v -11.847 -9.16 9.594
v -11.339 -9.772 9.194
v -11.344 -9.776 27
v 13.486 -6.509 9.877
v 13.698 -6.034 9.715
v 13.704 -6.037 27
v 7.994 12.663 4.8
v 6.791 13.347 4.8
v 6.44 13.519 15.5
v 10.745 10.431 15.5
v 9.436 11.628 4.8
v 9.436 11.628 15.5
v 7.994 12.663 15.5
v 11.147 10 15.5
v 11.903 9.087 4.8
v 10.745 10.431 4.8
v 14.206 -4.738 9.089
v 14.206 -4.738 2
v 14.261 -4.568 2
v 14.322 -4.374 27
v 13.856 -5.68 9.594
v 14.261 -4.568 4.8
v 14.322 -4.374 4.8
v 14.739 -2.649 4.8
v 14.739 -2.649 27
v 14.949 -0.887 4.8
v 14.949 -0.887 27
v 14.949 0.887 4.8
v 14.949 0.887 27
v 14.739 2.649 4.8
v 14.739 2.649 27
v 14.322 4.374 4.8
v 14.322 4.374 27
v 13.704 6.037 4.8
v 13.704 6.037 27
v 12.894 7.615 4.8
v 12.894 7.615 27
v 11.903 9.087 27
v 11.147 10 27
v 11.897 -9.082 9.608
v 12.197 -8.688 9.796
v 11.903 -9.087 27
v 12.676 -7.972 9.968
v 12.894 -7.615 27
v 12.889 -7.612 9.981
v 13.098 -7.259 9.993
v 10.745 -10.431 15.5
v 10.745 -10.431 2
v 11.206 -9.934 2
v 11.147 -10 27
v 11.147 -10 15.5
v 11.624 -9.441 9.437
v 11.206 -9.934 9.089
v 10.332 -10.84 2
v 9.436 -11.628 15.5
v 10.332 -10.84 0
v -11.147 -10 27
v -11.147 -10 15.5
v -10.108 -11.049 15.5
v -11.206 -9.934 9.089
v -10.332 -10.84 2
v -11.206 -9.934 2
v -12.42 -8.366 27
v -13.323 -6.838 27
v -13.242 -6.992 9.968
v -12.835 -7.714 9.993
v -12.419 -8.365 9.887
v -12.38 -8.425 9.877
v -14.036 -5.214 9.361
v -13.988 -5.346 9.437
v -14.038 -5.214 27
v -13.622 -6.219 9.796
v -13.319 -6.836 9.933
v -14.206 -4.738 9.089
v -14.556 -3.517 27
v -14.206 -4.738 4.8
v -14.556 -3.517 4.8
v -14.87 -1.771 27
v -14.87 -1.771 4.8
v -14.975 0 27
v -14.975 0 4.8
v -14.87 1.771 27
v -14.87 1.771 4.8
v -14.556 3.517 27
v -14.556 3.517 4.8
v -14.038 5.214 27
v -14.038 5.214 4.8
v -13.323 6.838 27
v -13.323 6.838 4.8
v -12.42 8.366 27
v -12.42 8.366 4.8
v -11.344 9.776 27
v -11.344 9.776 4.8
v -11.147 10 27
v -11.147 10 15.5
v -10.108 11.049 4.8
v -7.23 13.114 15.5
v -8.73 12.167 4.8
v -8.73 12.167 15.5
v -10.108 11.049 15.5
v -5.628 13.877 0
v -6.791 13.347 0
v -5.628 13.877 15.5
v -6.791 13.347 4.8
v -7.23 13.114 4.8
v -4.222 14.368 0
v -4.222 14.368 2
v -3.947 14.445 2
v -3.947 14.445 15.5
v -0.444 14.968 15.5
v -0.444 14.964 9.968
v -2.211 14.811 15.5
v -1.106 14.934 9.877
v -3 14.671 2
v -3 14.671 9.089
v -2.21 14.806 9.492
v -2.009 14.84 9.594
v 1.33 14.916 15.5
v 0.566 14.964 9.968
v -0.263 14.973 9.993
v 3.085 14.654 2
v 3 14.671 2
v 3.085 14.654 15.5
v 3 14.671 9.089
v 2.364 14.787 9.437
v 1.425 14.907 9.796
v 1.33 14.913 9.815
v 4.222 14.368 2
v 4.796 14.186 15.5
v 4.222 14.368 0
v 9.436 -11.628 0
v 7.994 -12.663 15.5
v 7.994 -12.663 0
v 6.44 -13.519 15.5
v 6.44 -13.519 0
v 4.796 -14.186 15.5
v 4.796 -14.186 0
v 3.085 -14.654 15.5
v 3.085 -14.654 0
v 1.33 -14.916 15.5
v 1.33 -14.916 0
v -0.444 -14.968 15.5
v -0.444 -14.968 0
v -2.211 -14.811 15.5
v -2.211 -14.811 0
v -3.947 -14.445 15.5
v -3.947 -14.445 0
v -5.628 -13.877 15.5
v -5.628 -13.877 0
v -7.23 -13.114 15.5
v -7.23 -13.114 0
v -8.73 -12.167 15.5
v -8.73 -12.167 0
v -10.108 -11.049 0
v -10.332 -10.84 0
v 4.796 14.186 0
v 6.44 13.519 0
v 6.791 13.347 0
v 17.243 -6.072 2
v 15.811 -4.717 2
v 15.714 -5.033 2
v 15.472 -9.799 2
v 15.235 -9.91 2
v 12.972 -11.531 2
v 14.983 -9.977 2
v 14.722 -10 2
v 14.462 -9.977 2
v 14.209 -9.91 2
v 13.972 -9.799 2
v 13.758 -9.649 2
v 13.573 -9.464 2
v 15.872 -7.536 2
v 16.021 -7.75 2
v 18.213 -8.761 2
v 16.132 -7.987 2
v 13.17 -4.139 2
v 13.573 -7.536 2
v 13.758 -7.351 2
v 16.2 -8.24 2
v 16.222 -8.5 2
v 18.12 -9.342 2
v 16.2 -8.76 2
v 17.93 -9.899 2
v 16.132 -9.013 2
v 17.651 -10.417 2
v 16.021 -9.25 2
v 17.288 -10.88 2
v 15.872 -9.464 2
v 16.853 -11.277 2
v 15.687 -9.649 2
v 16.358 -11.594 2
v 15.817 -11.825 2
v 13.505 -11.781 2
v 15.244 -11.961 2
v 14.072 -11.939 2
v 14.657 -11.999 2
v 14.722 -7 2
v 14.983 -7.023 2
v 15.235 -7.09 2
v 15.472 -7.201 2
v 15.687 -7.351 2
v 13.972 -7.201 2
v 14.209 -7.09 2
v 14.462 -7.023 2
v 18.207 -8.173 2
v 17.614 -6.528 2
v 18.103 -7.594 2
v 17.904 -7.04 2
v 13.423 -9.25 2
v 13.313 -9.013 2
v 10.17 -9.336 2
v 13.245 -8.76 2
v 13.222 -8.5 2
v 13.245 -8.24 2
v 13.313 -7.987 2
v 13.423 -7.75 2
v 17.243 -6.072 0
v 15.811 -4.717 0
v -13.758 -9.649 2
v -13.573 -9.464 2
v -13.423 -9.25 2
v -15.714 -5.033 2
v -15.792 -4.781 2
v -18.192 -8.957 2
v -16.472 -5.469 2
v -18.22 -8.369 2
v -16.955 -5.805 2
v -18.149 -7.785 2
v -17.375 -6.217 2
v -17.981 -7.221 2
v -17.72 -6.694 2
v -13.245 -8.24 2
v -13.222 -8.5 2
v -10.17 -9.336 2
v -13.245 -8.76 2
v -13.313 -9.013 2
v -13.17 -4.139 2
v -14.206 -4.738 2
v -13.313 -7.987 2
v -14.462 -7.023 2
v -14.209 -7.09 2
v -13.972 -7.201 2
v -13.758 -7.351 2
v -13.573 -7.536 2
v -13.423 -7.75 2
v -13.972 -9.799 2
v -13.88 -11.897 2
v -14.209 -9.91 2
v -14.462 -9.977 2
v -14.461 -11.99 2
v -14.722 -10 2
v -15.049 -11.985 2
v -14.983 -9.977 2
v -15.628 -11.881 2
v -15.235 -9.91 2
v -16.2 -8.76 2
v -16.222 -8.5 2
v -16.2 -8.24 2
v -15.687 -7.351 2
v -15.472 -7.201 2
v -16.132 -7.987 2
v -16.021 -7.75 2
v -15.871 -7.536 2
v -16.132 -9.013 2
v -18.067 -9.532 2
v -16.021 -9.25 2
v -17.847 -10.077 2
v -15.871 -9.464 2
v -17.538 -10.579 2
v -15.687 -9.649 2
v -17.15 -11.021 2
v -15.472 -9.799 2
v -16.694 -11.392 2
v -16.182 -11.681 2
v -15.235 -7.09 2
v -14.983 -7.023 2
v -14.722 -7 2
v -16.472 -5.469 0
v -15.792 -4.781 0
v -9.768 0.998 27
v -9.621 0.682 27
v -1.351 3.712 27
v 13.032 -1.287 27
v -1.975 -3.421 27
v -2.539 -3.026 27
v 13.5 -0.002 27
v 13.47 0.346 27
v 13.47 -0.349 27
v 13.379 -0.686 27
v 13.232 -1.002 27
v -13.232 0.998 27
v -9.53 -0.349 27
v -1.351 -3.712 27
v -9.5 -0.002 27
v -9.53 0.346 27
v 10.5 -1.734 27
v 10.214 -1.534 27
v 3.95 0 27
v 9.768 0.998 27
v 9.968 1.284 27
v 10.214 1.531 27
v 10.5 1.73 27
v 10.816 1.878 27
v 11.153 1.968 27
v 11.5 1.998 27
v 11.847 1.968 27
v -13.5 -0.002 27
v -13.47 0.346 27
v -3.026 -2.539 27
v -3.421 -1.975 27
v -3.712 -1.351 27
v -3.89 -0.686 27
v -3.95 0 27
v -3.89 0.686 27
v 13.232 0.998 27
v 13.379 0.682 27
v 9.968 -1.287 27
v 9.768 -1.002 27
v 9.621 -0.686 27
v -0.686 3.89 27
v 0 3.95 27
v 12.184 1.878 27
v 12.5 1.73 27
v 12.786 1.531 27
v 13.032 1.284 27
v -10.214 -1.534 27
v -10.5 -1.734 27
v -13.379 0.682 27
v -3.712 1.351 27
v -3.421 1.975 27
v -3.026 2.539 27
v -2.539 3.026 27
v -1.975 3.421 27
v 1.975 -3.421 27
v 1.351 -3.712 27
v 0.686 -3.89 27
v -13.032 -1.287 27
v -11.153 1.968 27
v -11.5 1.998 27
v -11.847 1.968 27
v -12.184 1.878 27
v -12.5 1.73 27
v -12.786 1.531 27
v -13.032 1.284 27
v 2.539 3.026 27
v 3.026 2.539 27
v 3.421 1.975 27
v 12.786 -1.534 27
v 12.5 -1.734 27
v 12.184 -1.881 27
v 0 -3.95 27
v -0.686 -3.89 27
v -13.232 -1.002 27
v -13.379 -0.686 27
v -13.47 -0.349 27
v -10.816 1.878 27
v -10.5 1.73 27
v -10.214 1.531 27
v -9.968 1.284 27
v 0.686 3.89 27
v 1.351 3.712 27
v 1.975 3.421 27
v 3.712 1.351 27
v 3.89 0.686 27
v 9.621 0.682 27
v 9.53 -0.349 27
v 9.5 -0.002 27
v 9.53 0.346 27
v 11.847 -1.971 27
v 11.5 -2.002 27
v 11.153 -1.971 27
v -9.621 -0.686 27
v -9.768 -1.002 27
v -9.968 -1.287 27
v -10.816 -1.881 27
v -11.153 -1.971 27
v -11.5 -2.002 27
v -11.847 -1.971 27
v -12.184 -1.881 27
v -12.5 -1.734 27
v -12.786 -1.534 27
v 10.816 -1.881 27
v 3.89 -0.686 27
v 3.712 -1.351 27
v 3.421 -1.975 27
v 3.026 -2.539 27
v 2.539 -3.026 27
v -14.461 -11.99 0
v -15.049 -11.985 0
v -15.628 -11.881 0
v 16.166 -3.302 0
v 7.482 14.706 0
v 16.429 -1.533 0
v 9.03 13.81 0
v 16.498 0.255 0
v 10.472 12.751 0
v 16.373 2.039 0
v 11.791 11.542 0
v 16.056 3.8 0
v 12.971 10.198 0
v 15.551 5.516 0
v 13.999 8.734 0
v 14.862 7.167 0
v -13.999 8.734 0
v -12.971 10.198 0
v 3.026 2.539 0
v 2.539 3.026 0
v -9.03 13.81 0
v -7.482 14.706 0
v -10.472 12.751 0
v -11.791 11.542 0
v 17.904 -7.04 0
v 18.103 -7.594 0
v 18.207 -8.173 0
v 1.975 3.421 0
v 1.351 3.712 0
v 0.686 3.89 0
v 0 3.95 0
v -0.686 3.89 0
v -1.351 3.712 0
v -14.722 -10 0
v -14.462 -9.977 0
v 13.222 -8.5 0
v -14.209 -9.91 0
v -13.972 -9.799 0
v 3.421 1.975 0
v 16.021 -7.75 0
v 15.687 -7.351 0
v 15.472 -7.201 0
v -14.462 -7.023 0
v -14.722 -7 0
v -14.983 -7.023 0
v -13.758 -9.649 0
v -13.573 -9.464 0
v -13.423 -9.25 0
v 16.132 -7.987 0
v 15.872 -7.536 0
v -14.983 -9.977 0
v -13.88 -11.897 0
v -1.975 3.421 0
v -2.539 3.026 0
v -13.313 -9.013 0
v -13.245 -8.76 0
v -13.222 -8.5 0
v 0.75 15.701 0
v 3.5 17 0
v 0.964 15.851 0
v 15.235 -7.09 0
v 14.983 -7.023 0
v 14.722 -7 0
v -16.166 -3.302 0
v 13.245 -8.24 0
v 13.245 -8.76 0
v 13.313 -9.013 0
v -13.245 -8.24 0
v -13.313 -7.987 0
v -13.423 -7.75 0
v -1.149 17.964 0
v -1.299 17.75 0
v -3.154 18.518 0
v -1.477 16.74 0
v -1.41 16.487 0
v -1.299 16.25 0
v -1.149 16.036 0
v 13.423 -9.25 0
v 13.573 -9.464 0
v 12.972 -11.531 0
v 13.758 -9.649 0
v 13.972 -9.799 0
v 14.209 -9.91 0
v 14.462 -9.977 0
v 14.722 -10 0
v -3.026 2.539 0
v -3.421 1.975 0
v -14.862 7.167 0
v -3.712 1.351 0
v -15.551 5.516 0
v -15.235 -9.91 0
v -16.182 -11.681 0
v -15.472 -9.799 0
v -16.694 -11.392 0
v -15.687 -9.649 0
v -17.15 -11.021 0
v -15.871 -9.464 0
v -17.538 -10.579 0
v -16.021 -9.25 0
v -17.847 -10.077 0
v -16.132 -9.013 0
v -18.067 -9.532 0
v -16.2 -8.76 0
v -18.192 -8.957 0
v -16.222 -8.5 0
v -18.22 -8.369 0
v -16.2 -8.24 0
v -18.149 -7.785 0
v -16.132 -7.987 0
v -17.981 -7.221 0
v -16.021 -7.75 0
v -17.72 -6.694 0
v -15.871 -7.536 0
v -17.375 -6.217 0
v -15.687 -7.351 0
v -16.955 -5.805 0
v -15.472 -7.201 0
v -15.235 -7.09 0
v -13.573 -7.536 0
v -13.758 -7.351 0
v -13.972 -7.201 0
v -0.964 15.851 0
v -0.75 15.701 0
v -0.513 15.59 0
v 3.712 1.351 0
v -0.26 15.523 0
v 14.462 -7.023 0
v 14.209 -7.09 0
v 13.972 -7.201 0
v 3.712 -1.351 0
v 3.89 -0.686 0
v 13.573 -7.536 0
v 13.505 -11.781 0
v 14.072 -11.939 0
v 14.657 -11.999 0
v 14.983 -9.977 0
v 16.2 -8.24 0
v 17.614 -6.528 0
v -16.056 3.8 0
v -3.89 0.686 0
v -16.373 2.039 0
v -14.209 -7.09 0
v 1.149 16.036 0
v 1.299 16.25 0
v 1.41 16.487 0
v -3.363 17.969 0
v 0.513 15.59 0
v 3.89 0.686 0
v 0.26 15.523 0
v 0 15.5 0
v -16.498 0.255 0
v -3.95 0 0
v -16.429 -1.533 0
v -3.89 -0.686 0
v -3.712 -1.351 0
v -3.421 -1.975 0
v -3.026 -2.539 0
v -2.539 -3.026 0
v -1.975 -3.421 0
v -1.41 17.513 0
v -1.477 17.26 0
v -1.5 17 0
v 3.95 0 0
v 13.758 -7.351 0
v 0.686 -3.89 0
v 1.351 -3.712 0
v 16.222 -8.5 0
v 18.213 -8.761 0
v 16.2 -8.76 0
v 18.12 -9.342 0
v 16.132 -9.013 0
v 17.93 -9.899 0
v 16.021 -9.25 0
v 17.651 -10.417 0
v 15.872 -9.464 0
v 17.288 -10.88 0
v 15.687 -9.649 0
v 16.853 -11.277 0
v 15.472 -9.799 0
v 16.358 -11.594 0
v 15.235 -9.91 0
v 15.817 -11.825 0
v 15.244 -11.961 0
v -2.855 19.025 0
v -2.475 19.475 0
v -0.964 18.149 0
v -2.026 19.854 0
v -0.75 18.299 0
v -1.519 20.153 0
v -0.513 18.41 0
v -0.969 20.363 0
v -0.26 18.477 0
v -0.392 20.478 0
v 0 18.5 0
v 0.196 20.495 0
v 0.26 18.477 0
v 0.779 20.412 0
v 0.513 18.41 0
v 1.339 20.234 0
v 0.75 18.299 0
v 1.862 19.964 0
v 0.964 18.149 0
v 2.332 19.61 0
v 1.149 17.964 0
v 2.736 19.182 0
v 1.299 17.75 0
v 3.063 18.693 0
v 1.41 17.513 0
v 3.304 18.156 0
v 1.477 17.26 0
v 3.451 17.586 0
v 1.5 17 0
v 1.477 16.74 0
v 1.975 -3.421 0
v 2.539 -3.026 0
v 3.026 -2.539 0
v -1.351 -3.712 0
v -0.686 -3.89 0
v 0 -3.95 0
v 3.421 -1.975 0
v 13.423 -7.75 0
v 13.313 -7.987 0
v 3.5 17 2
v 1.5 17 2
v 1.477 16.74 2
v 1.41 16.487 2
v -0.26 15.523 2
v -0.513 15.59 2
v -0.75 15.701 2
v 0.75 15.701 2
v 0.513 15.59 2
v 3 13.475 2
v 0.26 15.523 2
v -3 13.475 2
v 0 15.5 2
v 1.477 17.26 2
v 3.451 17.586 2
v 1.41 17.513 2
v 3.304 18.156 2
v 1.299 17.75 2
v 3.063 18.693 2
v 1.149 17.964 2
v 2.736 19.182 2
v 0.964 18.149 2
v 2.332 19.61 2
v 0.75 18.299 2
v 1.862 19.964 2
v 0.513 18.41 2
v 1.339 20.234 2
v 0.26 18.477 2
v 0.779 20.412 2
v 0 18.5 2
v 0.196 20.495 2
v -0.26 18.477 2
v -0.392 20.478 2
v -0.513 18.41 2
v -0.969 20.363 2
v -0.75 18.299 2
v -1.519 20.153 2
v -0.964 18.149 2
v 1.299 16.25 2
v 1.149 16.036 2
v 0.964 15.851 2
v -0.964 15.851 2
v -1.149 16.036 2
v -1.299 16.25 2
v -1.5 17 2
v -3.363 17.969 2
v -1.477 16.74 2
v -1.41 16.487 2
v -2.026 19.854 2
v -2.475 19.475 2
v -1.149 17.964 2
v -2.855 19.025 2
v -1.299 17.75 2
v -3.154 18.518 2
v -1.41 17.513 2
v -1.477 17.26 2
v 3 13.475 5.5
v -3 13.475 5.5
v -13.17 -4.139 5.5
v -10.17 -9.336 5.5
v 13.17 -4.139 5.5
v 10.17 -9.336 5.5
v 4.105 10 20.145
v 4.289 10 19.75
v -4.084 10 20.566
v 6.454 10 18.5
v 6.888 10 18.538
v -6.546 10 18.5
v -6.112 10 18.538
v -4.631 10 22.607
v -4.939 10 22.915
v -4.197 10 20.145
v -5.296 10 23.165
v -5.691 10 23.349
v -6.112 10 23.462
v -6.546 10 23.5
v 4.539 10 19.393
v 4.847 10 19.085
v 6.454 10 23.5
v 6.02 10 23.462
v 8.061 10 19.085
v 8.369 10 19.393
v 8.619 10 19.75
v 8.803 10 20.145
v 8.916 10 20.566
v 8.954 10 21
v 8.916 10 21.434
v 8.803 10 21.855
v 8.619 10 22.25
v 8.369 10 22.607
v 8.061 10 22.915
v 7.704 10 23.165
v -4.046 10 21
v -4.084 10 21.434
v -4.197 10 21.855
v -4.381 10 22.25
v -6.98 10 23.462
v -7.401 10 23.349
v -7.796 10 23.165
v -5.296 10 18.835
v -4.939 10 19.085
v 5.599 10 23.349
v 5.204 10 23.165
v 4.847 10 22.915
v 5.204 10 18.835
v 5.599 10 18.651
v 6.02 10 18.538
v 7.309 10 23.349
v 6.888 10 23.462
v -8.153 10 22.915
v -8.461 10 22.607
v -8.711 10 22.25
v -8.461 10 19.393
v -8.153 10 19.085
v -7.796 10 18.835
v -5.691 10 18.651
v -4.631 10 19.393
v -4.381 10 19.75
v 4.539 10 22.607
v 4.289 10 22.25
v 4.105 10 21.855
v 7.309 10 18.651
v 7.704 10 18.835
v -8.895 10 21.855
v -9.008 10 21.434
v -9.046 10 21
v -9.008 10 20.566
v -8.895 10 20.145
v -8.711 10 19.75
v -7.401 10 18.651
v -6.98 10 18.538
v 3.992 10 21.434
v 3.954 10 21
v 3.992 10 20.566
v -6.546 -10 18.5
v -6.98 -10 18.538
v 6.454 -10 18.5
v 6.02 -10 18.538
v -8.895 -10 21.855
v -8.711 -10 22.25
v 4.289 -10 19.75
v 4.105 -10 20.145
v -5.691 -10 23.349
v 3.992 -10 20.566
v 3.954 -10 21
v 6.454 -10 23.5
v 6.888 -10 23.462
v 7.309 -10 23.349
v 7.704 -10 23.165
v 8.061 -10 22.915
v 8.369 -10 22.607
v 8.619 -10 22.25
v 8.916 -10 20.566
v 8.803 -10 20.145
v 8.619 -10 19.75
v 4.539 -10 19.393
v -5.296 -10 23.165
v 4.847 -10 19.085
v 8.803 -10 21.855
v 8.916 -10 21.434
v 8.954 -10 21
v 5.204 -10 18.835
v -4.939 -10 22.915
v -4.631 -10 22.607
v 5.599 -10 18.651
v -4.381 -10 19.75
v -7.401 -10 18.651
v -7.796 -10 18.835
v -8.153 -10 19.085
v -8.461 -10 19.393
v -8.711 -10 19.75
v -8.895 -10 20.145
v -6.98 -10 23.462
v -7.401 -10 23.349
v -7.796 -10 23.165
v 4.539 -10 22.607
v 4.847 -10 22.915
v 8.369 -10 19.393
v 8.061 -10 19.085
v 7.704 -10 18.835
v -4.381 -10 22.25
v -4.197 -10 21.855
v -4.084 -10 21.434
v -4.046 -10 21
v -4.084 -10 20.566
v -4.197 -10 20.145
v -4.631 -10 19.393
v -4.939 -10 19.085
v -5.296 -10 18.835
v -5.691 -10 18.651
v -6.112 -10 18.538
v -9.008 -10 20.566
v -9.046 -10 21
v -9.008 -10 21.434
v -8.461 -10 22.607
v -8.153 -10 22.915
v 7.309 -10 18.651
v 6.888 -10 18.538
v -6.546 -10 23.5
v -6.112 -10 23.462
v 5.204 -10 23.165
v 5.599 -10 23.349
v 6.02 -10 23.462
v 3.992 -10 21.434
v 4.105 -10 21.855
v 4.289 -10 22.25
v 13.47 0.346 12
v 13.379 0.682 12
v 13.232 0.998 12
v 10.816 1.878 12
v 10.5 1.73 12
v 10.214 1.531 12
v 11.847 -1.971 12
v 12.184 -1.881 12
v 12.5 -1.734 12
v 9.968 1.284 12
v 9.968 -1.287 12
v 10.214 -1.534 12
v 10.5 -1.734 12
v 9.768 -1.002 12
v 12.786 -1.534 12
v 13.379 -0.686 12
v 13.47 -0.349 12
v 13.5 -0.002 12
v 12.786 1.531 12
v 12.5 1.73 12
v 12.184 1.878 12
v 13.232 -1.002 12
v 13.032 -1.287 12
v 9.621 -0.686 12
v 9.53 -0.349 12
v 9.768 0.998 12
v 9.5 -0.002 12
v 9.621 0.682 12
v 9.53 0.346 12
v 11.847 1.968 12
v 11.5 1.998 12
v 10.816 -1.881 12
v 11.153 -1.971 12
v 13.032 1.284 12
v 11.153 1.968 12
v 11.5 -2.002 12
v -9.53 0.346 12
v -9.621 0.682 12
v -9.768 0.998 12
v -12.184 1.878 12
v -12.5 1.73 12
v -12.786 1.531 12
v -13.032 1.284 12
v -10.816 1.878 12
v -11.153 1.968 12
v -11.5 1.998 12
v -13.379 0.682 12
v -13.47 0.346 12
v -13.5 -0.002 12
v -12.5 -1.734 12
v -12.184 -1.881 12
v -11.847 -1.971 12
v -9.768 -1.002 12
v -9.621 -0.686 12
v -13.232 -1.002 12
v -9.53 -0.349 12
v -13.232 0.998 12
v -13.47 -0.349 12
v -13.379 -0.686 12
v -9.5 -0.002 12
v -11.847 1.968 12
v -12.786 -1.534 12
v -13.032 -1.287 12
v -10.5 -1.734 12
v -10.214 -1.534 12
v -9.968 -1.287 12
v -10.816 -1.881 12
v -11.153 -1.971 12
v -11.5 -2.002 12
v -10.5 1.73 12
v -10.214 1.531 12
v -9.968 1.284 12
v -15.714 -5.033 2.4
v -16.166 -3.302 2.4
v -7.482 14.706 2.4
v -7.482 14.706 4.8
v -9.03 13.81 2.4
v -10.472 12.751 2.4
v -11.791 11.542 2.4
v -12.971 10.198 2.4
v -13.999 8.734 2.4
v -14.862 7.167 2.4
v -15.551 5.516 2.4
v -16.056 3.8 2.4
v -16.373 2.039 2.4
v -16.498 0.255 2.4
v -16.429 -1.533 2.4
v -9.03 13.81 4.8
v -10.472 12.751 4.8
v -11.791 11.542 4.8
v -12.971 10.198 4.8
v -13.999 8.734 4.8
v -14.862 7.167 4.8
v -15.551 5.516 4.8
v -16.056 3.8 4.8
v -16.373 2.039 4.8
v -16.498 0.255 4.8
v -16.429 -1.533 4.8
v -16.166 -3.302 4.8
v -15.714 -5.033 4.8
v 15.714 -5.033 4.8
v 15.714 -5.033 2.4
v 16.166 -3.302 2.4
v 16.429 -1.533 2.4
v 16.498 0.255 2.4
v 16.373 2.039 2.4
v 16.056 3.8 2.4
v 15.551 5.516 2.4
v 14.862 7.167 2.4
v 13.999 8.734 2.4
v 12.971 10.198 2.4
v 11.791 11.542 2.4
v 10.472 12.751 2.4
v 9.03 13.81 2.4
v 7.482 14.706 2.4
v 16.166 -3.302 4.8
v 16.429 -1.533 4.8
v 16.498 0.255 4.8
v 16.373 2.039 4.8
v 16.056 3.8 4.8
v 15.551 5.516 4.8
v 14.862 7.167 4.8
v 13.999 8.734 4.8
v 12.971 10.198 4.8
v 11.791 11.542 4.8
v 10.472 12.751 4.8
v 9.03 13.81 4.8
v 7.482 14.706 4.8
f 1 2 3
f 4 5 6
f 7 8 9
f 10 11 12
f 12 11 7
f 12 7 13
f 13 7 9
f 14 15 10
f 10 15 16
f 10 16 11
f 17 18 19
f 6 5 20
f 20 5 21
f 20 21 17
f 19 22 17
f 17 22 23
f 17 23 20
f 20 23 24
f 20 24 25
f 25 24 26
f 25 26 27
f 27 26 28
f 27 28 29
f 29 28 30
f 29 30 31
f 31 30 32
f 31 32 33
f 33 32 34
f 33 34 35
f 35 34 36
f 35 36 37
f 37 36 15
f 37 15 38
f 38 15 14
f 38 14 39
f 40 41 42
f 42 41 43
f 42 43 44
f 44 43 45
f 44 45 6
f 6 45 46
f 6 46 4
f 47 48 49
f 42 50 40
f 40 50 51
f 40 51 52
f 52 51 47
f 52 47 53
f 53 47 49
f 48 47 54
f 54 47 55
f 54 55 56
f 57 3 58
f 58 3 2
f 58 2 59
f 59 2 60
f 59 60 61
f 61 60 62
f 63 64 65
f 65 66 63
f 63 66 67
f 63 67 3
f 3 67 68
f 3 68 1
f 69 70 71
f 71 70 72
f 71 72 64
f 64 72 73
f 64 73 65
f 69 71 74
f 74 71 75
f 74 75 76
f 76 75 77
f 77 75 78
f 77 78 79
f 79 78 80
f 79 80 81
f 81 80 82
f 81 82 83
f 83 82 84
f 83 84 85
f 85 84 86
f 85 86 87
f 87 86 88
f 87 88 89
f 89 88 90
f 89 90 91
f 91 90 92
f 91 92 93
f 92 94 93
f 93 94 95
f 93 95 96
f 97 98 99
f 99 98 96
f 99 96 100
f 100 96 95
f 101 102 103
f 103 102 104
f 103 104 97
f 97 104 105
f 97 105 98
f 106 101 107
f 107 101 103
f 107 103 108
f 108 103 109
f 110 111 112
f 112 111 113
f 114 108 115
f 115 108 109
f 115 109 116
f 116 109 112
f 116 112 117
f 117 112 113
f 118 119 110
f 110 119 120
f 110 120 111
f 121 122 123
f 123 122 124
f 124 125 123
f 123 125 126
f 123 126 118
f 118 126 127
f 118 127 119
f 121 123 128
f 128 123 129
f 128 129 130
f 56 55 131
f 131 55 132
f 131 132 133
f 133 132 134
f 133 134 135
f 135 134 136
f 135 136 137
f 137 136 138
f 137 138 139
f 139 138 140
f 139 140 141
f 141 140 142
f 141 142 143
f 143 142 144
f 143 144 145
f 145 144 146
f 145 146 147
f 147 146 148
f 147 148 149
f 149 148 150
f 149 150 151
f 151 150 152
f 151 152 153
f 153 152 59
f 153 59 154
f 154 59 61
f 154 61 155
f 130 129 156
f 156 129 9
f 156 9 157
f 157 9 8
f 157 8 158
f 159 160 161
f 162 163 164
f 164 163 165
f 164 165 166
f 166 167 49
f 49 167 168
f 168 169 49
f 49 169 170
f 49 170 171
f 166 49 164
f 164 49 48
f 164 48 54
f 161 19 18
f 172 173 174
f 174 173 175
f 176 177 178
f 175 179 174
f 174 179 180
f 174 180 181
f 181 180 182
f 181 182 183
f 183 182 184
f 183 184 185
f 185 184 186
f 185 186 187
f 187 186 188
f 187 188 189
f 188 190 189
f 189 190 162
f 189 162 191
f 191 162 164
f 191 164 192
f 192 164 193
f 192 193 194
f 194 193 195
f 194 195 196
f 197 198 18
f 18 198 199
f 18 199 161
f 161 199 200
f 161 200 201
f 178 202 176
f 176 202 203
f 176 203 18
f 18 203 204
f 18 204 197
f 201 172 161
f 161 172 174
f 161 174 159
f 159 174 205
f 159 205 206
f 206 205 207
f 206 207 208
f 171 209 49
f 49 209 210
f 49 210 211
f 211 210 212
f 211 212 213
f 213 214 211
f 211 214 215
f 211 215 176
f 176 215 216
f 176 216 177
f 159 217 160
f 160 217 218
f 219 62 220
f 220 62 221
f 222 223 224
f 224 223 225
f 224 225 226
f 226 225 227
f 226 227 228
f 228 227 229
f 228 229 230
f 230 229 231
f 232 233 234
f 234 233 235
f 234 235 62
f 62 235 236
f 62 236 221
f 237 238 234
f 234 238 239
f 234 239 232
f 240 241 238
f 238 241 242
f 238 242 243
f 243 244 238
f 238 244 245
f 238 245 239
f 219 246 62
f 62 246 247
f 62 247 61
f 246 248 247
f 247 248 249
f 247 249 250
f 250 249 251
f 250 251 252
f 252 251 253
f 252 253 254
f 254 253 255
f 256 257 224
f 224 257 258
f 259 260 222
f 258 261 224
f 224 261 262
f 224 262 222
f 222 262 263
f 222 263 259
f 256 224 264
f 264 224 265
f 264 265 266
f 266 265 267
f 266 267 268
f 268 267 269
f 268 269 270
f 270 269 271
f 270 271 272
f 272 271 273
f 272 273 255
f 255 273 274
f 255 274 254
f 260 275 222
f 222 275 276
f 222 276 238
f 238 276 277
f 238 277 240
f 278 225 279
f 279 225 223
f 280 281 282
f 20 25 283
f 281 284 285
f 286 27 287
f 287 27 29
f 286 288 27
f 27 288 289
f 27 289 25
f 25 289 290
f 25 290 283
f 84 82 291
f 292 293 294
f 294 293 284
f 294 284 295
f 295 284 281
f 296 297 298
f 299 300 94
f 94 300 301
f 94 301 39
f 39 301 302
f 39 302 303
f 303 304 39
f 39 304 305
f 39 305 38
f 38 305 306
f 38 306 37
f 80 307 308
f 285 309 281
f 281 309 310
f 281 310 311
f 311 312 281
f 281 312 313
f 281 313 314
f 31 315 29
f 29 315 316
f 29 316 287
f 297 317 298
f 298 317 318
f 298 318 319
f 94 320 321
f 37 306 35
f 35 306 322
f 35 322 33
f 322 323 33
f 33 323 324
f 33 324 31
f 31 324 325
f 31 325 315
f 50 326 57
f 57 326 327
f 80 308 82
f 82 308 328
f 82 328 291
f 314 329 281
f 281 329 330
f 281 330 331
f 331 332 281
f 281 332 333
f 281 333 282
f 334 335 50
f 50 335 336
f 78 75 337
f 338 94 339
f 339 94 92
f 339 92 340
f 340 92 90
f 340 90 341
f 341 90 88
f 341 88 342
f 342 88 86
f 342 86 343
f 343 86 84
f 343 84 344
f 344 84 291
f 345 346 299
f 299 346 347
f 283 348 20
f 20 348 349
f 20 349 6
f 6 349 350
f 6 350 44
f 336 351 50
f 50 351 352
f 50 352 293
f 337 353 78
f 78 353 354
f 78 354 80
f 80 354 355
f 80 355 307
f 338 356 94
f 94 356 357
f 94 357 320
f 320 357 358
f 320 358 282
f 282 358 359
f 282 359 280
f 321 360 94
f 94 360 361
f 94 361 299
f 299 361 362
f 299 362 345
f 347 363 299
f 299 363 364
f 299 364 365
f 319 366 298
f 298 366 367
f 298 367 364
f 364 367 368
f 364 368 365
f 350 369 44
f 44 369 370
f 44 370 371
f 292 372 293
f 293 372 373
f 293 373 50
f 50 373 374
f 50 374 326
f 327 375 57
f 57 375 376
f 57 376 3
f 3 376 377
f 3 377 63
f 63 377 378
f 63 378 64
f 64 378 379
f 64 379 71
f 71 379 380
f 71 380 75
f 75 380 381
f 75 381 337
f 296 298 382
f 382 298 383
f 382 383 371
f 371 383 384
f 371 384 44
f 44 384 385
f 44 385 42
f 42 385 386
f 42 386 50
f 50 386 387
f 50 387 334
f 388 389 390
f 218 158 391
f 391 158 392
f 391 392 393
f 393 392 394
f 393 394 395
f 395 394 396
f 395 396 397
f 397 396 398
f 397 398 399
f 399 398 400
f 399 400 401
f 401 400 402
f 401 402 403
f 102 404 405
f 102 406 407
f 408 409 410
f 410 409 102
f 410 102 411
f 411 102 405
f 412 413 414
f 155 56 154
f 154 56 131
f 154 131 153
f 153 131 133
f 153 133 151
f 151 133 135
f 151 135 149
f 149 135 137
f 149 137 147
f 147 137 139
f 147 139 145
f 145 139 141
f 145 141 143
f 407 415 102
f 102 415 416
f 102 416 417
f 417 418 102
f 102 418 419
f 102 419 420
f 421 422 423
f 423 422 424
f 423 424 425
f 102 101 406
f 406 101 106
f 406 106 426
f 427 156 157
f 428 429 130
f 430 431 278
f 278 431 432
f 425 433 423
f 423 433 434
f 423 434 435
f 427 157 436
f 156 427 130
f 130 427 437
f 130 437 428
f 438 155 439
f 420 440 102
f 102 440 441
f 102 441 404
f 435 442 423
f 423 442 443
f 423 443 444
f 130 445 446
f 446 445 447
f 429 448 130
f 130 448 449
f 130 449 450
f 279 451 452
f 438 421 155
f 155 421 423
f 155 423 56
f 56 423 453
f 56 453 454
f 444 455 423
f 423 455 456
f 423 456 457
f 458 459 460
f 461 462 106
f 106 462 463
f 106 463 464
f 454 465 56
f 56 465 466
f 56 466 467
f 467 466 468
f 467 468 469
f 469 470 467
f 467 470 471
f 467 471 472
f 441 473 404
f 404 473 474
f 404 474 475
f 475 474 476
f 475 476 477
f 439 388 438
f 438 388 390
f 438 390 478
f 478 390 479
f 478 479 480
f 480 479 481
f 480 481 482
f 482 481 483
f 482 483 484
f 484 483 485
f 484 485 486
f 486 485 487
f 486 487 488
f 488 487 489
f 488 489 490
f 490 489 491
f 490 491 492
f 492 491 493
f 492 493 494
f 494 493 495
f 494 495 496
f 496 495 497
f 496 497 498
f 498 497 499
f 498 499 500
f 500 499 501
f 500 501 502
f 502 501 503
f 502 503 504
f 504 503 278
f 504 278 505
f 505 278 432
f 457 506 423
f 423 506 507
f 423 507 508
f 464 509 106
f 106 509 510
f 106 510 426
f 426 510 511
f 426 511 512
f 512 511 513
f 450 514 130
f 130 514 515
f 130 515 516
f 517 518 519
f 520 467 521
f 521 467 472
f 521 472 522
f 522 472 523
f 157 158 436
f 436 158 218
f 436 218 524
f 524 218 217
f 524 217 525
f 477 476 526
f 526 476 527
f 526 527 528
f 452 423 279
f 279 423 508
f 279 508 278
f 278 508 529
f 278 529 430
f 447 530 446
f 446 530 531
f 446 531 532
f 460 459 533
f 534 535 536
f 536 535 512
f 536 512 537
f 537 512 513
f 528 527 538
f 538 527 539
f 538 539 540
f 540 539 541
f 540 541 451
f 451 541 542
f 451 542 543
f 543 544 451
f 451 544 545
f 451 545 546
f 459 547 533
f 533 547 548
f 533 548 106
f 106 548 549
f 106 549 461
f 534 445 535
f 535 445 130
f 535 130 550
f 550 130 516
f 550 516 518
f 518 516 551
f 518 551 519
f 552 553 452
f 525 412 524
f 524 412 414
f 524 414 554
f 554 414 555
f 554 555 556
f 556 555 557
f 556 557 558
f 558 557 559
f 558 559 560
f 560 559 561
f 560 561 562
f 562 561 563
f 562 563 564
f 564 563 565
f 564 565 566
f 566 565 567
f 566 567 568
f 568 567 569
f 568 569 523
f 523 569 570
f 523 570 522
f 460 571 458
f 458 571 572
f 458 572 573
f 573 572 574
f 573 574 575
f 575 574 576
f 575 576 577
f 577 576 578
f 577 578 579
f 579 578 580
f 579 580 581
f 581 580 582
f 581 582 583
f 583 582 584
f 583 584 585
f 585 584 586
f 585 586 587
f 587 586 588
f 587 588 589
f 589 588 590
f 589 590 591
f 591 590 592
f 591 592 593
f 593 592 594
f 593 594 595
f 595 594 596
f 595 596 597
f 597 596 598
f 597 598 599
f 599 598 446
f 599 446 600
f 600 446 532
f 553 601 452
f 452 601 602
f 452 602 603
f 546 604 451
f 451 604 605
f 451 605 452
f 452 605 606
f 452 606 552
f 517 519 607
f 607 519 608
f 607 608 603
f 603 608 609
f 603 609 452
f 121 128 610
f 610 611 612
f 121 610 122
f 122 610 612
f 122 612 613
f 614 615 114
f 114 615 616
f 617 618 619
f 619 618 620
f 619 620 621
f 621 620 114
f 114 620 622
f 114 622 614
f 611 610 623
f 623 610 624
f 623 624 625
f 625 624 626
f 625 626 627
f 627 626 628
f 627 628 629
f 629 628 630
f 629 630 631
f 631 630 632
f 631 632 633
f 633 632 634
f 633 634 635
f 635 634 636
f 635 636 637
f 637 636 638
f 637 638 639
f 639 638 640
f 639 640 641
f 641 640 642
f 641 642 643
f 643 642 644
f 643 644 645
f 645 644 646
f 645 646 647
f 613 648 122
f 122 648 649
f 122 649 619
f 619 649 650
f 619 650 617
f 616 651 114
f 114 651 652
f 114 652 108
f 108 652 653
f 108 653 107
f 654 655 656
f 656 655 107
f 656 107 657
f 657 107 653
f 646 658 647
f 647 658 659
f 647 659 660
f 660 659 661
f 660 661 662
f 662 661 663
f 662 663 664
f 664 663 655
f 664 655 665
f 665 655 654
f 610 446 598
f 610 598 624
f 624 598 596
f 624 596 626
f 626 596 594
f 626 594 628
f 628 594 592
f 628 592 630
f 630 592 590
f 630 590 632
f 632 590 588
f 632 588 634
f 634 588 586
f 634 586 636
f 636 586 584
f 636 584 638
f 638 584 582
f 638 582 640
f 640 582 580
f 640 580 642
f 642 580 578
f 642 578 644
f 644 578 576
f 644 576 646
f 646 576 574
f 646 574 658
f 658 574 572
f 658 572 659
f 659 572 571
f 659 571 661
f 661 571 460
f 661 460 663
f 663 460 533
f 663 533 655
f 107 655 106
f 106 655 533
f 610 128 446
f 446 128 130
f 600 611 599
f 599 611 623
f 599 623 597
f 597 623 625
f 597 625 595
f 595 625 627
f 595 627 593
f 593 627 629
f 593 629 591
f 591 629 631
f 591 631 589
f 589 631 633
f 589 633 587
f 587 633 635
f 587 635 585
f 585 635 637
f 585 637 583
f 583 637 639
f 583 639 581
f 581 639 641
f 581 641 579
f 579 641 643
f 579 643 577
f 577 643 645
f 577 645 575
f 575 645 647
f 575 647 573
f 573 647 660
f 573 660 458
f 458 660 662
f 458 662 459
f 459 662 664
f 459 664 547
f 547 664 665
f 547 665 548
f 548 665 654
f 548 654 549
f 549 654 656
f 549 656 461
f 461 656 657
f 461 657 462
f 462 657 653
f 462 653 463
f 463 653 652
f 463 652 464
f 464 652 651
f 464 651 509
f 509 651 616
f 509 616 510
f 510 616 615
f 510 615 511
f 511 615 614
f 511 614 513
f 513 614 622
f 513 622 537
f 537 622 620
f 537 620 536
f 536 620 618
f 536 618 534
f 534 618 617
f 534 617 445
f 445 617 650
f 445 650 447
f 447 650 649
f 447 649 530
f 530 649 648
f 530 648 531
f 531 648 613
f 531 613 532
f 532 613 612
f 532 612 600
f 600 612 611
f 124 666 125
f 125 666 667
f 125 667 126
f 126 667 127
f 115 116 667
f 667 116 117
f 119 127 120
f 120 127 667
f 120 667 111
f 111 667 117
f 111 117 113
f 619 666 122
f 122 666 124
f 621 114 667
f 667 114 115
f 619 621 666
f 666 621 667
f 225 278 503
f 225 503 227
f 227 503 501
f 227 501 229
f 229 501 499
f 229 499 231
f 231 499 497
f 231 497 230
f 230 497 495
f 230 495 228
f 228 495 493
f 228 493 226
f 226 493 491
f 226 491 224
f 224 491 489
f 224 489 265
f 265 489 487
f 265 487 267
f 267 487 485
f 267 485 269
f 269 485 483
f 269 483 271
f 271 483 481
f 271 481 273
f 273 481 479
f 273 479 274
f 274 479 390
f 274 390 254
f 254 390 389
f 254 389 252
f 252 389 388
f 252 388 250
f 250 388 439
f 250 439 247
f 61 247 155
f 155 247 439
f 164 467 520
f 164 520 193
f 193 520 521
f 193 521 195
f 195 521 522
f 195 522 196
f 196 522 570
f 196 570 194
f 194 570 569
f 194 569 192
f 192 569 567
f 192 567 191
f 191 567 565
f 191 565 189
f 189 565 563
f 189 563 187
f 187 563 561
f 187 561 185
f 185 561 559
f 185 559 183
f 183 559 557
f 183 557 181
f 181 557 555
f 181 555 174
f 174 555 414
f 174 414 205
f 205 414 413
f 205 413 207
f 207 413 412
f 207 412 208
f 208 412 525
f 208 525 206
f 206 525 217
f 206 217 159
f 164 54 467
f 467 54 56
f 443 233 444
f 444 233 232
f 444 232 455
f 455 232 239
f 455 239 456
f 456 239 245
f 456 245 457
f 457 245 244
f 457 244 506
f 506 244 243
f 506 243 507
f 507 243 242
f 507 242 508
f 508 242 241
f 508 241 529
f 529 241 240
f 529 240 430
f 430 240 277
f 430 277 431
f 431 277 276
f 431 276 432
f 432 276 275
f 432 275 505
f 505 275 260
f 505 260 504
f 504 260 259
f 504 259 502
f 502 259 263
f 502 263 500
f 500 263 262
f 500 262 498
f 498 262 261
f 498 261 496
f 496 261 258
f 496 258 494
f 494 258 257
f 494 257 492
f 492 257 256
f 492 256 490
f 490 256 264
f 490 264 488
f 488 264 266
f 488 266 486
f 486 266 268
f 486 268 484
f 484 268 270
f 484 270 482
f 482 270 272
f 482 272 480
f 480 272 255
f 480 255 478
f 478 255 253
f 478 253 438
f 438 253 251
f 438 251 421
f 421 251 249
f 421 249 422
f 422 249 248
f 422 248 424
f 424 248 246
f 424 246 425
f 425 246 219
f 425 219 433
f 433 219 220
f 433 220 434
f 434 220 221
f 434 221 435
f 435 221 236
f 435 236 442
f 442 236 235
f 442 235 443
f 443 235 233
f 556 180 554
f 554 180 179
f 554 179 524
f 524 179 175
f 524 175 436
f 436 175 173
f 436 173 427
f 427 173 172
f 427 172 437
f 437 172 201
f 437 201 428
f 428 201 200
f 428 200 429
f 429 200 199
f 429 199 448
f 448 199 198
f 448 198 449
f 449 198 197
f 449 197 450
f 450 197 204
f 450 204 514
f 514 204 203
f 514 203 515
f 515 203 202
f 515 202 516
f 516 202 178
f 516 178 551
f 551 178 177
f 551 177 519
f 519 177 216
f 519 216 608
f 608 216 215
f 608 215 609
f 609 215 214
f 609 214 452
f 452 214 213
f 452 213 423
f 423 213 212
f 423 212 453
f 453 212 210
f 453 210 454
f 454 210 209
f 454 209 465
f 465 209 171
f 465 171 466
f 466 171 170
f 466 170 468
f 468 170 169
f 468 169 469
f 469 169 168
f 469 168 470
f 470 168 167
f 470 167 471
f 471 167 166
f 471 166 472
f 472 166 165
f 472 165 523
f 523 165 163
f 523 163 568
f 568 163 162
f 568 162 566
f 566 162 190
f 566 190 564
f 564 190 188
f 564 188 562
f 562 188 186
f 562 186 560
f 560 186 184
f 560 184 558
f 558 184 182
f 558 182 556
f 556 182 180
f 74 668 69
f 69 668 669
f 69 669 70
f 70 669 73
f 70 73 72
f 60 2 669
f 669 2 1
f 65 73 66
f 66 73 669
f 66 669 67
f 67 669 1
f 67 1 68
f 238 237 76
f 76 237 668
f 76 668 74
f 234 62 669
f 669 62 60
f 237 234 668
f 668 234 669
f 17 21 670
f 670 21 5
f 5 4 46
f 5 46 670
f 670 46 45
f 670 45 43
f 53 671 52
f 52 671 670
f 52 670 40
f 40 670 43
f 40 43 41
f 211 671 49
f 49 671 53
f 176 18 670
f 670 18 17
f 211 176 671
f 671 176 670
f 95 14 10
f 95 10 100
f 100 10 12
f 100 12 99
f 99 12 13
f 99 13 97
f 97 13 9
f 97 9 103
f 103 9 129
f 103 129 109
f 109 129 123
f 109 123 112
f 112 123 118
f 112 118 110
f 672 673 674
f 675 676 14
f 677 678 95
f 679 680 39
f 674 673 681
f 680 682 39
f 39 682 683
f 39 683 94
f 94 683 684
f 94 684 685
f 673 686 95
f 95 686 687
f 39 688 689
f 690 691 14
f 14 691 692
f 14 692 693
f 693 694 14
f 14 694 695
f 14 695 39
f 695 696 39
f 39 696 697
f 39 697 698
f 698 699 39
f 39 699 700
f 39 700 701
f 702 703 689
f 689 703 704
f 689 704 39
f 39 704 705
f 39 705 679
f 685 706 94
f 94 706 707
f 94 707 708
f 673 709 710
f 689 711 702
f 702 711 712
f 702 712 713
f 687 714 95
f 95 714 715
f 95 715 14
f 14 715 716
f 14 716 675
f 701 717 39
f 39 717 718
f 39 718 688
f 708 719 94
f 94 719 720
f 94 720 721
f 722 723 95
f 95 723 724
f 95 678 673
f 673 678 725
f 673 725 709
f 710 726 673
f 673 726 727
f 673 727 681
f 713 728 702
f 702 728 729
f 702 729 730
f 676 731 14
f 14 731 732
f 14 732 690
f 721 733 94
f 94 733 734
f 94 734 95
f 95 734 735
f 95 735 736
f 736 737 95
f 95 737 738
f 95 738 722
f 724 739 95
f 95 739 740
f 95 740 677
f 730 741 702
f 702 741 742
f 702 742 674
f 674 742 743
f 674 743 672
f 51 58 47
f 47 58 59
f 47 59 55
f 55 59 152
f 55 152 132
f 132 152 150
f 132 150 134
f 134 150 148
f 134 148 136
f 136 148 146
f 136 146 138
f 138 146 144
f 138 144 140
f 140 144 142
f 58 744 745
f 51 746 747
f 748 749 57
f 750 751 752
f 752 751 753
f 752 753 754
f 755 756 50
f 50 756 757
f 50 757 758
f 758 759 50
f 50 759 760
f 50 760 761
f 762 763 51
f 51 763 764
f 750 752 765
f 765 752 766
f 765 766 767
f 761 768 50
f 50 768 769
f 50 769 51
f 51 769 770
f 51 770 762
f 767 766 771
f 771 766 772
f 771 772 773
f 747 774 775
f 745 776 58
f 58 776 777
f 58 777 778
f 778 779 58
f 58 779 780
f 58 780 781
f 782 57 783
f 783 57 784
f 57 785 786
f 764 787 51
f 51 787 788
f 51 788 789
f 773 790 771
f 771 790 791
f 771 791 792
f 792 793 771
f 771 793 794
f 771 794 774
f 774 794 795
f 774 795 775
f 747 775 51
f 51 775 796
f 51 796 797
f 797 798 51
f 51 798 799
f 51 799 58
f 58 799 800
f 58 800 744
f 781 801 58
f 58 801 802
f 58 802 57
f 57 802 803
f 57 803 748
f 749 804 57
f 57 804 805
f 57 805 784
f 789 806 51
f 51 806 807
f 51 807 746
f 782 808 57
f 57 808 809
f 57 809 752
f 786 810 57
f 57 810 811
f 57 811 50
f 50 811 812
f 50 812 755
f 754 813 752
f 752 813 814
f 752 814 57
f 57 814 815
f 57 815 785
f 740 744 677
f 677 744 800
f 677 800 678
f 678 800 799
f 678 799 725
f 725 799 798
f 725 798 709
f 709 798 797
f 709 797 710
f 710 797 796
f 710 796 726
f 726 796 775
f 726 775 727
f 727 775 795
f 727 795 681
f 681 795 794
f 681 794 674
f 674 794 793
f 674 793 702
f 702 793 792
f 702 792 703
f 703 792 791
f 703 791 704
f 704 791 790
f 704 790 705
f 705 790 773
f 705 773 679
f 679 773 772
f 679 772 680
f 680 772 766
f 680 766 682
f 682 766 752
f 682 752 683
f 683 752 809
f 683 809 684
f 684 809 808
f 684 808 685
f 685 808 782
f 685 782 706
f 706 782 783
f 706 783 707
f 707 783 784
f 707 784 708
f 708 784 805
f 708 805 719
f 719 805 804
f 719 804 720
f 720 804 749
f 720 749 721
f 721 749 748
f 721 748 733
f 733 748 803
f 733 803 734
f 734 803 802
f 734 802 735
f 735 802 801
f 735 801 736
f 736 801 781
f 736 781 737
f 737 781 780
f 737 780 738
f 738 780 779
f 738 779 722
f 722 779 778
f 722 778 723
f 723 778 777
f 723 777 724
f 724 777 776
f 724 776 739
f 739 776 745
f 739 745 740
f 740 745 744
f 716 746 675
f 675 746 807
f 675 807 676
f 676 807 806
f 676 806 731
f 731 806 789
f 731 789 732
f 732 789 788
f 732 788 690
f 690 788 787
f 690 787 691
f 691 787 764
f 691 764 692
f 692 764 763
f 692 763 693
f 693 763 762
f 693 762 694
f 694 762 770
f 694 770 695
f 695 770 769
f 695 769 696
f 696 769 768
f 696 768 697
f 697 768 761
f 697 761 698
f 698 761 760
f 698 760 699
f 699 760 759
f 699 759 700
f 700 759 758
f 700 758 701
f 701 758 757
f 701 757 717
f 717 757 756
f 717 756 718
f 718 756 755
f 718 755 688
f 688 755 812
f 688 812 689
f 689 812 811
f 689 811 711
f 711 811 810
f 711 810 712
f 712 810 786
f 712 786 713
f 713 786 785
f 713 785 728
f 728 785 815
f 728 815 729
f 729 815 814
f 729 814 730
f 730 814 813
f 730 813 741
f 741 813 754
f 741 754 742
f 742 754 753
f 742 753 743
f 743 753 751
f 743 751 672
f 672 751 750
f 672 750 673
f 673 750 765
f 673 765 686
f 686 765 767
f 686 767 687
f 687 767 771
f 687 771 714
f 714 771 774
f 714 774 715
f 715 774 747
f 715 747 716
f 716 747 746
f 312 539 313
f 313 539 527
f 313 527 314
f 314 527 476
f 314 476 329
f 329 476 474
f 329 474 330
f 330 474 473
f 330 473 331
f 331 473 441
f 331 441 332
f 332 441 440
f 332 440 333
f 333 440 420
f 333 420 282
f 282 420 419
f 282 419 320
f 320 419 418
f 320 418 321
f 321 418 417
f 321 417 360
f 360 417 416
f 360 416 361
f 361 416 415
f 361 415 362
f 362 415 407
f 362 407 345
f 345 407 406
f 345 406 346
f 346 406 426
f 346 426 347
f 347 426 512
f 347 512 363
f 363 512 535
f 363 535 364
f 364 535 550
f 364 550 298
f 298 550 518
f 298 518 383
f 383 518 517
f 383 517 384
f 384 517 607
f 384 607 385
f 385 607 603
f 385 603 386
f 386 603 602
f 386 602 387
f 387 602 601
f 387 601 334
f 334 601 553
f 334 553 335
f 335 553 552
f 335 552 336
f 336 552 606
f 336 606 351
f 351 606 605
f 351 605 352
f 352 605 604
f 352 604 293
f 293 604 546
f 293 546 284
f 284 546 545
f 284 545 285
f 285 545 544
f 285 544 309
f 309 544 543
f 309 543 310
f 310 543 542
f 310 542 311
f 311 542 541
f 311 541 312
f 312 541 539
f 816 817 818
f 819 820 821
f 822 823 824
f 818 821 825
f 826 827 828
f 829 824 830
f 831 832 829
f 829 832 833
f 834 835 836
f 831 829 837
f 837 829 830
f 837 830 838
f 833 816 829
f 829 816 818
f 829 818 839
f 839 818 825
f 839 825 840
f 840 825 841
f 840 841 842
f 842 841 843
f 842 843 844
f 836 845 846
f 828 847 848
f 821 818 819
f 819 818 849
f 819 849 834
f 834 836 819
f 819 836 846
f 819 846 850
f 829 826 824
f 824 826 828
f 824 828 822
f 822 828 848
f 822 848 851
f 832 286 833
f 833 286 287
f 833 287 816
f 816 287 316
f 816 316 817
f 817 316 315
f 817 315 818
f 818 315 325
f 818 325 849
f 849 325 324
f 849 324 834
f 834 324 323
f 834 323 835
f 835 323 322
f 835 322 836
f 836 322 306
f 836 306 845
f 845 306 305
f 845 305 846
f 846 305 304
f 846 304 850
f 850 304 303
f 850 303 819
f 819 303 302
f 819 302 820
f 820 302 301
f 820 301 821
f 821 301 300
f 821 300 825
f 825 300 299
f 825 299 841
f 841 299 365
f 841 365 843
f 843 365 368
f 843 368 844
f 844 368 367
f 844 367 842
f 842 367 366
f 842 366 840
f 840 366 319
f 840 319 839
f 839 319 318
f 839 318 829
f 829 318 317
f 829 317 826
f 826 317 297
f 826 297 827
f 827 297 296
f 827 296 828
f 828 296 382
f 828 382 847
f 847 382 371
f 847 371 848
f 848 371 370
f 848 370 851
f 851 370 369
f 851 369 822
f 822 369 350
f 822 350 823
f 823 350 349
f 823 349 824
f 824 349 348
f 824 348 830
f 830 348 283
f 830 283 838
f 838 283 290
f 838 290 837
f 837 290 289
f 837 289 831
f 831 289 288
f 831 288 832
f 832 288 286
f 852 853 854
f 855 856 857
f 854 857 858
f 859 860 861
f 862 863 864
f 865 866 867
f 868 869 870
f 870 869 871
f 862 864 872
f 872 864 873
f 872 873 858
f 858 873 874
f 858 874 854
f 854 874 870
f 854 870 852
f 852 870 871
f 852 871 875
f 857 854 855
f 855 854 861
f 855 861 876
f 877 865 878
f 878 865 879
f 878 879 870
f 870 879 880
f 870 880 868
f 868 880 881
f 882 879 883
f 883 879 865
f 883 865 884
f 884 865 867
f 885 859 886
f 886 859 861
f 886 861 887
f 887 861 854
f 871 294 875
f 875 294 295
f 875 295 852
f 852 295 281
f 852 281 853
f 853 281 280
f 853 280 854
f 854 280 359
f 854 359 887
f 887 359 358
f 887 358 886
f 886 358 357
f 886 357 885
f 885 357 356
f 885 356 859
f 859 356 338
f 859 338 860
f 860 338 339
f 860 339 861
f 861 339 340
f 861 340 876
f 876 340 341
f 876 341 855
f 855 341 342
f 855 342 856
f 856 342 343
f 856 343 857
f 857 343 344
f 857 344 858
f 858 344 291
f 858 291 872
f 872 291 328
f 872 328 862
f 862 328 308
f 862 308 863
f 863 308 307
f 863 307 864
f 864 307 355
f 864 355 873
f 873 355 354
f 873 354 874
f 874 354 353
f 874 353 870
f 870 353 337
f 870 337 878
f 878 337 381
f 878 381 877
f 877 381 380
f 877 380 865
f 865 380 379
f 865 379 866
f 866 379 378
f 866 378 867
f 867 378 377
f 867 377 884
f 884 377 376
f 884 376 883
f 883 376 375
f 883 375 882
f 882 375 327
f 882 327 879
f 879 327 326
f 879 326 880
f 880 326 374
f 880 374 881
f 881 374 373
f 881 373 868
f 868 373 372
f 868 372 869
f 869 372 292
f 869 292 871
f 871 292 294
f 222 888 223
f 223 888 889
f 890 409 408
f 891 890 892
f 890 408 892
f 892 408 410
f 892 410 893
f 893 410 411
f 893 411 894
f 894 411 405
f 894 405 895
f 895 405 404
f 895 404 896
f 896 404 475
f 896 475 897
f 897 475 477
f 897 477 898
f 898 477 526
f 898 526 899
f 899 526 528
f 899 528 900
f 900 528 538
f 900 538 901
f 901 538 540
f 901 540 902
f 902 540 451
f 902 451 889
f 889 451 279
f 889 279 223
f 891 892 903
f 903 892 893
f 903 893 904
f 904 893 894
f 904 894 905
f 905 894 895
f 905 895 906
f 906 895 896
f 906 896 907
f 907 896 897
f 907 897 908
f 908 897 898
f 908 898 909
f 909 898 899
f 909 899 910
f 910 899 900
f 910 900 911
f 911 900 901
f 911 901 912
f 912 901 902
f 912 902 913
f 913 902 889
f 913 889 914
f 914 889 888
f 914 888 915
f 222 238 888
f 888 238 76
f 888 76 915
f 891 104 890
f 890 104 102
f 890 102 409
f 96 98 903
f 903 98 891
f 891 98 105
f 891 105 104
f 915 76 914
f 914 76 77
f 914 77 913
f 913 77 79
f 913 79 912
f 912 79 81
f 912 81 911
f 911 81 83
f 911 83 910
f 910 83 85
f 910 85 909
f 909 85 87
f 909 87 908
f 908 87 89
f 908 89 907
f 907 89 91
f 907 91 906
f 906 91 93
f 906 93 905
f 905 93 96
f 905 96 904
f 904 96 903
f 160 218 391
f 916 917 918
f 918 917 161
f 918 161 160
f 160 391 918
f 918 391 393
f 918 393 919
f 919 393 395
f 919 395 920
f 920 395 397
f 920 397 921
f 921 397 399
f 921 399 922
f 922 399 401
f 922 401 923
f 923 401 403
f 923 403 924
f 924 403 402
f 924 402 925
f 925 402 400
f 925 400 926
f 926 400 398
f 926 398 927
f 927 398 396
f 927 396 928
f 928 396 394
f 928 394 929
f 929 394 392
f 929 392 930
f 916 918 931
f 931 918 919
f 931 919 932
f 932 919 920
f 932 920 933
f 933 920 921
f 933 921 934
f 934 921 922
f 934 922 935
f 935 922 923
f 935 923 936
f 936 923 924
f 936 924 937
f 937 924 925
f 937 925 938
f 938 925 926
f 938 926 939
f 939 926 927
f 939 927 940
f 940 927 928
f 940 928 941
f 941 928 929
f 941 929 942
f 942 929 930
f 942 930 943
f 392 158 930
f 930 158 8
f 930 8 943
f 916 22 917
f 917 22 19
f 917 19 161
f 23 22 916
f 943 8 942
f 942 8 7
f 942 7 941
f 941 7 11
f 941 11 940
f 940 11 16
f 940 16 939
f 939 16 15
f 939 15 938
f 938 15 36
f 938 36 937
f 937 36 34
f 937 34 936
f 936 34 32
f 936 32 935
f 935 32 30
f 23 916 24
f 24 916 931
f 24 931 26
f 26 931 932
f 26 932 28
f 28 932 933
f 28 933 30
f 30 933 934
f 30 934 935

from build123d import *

# Parameters (mm, degrees)
SKETCH1_R                    = 14.975
EXTRUDE1_DEPTH               = 27
EXTRUDE2_DEPTH               = 2
SKETCH3_R                    = 1.5
EXTRUDE3_DEPTH               = 3
EXTRUDE6_DEPTH               = 3
CIRPATTERN1_COUNT            = 3
SKETCH5_W                    = 37.119401026
SKETCH5_H                    = 9.762697639
EXTRUDE7_DEPTH               = 11.5
SKETCH6_R                    = 2.5
EXTRUDE8_DEPTH               = 45.624063274
SKETCH7_R                    = 3.95
EXTRUDE9_DEPTH               = 39.487751598
F_4_0_4_DIAMETER_HOLE1_D     = 4
F_4_0_4_DIAMETER_HOLE1_DEPTH = 15
EXTRUDE10_DEPTH              = 4.8


with BuildPart() as part:
    # Sketch1 → Extrude1 (new body)
    with BuildSketch(Plane.XY):
        Circle(SKETCH1_R)
    extrude(amount=EXTRUDE1_DEPTH)

    # Sketch2 → Extrude2 (add)
    with BuildSketch(Plane.XY):
        with BuildLine():
            Line((-3.363320174, 17.968543962), (-4.221577642, 14.367634016))
            Line((-4.221577642, 14.367634016), (4.221577642, 14.367634016))
            Line((4.221577642, 14.367634016), (3.5, 17))
            ThreePointArc((3.5, 17), (0.489070236, 20.465661597), (-3.363320174, 17.968543962))
        make_face()
    extrude2 = extrude(amount=EXTRUDE2_DEPTH)

    # Sketch3 → Extrude3 (cut)
    with BuildSketch(Plane.XY.offset(2)):
        with Locations((0, 17)):
            Circle(SKETCH3_R)
    extrude3 = extrude(amount=-EXTRUDE3_DEPTH, mode=Mode.SUBTRACT)

    # Sketch4 → Extrude6 (cut, symmetric)
    with BuildSketch(Plane(origin=(0, 0, 0), x_dir=(0, 0, -1), z_dir=(1, 0, 0))):
        Polygon((-2, 14.975), (-2, 13.475), (-5.5, 13.475), (-10, 14.975), align=None)
    extrude6 = extrude(amount=EXTRUDE6_DEPTH, both=True, mode=Mode.SUBTRACT)

    # CirPattern1: Extrude2, Extrude3, Extrude6 ×3 about axis
    cirpattern1_axis = Axis((0, 0, 0), (0, 0, 1))
    add([extrude2.rotate(cirpattern1_axis, i * 360 / CIRPATTERN1_COUNT) for i in range(1, CIRPATTERN1_COUNT)])
    add([extrude3.rotate(cirpattern1_axis, i * 360 / CIRPATTERN1_COUNT) for i in range(1, CIRPATTERN1_COUNT)], mode=Mode.SUBTRACT)
    add([extrude6.rotate(cirpattern1_axis, i * 360 / CIRPATTERN1_COUNT) for i in range(1, CIRPATTERN1_COUNT)], mode=Mode.SUBTRACT)

    # Sketch5 → Extrude7 (cut)
    with BuildSketch(Plane.XY.offset(27)):
        with Locations((1.994416424, 14.88134882)):
            Rectangle(SKETCH5_W, SKETCH5_H)
    extrude7 = extrude(amount=-EXTRUDE7_DEPTH, mode=Mode.SUBTRACT)

    # Mirror2: Extrude7 across plane
    add(extrude7.mirror(Plane.ZX), mode=Mode.SUBTRACT)

    # Sketch6 → Extrude8 (cut, through all)
    with BuildSketch(Plane.XZ.offset(10)):
        with Locations((-6.545813687, 21)):
            Circle(SKETCH6_R)
        with Locations((6.454186313, 21)):
            Circle(SKETCH6_R)
    extrude(amount=-EXTRUDE8_DEPTH, mode=Mode.SUBTRACT)

    # Sketch7 → Extrude9 (cut, through all)
    with BuildSketch(Plane(origin=(0, 0, 0), x_dir=(-1, 0, 0), z_dir=(0, 0, -1))):
        Circle(SKETCH7_R)
    extrude(amount=-EXTRUDE9_DEPTH, mode=Mode.SUBTRACT)

    # Ø4.0 (4) Diameter Hole1
    with Locations(Plane(origin=(-11.5, -0.00158702, 27), x_dir=(1, 0, 0), z_dir=(0, 0, 1))):
        with Locations((0, 0), (23, 0)):
            Hole(F_4_0_4_DIAMETER_HOLE1_D / 2, depth=F_4_0_4_DIAMETER_HOLE1_DEPTH)

    # Sketch9 → Extrude10 (add)
    with BuildSketch(Plane.XY):
        with BuildLine():
            Line((-7.482050917, 14.706084254), (-6.790528029, 13.346885558))
            ThreePointArc((-6.790528029, 13.346885558), (-13.855474408, 5.681237008), (-14.205824206, -4.737634814))
            Line((-14.205824206, -4.737634814), (-15.71367648, -5.032928718))
            ThreePointArc((-15.71367648, -5.032928718), (-15.22884108, 6.350779429), (-7.482050917, 14.706084254))
        make_face()
        with BuildLine():
            Line((7.482050917, 14.706084254), (6.790528029, 13.346885558))
            ThreePointArc((6.790528029, 13.346885558), (13.82132698, 5.763813452), (14.261351836, -4.567764094))
            Line((14.261351836, -4.567764094), (15.71367648, -5.032928718))
            ThreePointArc((15.71367648, -5.032928718), (15.22884108, 6.350779429), (7.482050917, 14.706084254))
        make_face()
    extrude(amount=EXTRUDE10_DEPTH)


solid = part.part
